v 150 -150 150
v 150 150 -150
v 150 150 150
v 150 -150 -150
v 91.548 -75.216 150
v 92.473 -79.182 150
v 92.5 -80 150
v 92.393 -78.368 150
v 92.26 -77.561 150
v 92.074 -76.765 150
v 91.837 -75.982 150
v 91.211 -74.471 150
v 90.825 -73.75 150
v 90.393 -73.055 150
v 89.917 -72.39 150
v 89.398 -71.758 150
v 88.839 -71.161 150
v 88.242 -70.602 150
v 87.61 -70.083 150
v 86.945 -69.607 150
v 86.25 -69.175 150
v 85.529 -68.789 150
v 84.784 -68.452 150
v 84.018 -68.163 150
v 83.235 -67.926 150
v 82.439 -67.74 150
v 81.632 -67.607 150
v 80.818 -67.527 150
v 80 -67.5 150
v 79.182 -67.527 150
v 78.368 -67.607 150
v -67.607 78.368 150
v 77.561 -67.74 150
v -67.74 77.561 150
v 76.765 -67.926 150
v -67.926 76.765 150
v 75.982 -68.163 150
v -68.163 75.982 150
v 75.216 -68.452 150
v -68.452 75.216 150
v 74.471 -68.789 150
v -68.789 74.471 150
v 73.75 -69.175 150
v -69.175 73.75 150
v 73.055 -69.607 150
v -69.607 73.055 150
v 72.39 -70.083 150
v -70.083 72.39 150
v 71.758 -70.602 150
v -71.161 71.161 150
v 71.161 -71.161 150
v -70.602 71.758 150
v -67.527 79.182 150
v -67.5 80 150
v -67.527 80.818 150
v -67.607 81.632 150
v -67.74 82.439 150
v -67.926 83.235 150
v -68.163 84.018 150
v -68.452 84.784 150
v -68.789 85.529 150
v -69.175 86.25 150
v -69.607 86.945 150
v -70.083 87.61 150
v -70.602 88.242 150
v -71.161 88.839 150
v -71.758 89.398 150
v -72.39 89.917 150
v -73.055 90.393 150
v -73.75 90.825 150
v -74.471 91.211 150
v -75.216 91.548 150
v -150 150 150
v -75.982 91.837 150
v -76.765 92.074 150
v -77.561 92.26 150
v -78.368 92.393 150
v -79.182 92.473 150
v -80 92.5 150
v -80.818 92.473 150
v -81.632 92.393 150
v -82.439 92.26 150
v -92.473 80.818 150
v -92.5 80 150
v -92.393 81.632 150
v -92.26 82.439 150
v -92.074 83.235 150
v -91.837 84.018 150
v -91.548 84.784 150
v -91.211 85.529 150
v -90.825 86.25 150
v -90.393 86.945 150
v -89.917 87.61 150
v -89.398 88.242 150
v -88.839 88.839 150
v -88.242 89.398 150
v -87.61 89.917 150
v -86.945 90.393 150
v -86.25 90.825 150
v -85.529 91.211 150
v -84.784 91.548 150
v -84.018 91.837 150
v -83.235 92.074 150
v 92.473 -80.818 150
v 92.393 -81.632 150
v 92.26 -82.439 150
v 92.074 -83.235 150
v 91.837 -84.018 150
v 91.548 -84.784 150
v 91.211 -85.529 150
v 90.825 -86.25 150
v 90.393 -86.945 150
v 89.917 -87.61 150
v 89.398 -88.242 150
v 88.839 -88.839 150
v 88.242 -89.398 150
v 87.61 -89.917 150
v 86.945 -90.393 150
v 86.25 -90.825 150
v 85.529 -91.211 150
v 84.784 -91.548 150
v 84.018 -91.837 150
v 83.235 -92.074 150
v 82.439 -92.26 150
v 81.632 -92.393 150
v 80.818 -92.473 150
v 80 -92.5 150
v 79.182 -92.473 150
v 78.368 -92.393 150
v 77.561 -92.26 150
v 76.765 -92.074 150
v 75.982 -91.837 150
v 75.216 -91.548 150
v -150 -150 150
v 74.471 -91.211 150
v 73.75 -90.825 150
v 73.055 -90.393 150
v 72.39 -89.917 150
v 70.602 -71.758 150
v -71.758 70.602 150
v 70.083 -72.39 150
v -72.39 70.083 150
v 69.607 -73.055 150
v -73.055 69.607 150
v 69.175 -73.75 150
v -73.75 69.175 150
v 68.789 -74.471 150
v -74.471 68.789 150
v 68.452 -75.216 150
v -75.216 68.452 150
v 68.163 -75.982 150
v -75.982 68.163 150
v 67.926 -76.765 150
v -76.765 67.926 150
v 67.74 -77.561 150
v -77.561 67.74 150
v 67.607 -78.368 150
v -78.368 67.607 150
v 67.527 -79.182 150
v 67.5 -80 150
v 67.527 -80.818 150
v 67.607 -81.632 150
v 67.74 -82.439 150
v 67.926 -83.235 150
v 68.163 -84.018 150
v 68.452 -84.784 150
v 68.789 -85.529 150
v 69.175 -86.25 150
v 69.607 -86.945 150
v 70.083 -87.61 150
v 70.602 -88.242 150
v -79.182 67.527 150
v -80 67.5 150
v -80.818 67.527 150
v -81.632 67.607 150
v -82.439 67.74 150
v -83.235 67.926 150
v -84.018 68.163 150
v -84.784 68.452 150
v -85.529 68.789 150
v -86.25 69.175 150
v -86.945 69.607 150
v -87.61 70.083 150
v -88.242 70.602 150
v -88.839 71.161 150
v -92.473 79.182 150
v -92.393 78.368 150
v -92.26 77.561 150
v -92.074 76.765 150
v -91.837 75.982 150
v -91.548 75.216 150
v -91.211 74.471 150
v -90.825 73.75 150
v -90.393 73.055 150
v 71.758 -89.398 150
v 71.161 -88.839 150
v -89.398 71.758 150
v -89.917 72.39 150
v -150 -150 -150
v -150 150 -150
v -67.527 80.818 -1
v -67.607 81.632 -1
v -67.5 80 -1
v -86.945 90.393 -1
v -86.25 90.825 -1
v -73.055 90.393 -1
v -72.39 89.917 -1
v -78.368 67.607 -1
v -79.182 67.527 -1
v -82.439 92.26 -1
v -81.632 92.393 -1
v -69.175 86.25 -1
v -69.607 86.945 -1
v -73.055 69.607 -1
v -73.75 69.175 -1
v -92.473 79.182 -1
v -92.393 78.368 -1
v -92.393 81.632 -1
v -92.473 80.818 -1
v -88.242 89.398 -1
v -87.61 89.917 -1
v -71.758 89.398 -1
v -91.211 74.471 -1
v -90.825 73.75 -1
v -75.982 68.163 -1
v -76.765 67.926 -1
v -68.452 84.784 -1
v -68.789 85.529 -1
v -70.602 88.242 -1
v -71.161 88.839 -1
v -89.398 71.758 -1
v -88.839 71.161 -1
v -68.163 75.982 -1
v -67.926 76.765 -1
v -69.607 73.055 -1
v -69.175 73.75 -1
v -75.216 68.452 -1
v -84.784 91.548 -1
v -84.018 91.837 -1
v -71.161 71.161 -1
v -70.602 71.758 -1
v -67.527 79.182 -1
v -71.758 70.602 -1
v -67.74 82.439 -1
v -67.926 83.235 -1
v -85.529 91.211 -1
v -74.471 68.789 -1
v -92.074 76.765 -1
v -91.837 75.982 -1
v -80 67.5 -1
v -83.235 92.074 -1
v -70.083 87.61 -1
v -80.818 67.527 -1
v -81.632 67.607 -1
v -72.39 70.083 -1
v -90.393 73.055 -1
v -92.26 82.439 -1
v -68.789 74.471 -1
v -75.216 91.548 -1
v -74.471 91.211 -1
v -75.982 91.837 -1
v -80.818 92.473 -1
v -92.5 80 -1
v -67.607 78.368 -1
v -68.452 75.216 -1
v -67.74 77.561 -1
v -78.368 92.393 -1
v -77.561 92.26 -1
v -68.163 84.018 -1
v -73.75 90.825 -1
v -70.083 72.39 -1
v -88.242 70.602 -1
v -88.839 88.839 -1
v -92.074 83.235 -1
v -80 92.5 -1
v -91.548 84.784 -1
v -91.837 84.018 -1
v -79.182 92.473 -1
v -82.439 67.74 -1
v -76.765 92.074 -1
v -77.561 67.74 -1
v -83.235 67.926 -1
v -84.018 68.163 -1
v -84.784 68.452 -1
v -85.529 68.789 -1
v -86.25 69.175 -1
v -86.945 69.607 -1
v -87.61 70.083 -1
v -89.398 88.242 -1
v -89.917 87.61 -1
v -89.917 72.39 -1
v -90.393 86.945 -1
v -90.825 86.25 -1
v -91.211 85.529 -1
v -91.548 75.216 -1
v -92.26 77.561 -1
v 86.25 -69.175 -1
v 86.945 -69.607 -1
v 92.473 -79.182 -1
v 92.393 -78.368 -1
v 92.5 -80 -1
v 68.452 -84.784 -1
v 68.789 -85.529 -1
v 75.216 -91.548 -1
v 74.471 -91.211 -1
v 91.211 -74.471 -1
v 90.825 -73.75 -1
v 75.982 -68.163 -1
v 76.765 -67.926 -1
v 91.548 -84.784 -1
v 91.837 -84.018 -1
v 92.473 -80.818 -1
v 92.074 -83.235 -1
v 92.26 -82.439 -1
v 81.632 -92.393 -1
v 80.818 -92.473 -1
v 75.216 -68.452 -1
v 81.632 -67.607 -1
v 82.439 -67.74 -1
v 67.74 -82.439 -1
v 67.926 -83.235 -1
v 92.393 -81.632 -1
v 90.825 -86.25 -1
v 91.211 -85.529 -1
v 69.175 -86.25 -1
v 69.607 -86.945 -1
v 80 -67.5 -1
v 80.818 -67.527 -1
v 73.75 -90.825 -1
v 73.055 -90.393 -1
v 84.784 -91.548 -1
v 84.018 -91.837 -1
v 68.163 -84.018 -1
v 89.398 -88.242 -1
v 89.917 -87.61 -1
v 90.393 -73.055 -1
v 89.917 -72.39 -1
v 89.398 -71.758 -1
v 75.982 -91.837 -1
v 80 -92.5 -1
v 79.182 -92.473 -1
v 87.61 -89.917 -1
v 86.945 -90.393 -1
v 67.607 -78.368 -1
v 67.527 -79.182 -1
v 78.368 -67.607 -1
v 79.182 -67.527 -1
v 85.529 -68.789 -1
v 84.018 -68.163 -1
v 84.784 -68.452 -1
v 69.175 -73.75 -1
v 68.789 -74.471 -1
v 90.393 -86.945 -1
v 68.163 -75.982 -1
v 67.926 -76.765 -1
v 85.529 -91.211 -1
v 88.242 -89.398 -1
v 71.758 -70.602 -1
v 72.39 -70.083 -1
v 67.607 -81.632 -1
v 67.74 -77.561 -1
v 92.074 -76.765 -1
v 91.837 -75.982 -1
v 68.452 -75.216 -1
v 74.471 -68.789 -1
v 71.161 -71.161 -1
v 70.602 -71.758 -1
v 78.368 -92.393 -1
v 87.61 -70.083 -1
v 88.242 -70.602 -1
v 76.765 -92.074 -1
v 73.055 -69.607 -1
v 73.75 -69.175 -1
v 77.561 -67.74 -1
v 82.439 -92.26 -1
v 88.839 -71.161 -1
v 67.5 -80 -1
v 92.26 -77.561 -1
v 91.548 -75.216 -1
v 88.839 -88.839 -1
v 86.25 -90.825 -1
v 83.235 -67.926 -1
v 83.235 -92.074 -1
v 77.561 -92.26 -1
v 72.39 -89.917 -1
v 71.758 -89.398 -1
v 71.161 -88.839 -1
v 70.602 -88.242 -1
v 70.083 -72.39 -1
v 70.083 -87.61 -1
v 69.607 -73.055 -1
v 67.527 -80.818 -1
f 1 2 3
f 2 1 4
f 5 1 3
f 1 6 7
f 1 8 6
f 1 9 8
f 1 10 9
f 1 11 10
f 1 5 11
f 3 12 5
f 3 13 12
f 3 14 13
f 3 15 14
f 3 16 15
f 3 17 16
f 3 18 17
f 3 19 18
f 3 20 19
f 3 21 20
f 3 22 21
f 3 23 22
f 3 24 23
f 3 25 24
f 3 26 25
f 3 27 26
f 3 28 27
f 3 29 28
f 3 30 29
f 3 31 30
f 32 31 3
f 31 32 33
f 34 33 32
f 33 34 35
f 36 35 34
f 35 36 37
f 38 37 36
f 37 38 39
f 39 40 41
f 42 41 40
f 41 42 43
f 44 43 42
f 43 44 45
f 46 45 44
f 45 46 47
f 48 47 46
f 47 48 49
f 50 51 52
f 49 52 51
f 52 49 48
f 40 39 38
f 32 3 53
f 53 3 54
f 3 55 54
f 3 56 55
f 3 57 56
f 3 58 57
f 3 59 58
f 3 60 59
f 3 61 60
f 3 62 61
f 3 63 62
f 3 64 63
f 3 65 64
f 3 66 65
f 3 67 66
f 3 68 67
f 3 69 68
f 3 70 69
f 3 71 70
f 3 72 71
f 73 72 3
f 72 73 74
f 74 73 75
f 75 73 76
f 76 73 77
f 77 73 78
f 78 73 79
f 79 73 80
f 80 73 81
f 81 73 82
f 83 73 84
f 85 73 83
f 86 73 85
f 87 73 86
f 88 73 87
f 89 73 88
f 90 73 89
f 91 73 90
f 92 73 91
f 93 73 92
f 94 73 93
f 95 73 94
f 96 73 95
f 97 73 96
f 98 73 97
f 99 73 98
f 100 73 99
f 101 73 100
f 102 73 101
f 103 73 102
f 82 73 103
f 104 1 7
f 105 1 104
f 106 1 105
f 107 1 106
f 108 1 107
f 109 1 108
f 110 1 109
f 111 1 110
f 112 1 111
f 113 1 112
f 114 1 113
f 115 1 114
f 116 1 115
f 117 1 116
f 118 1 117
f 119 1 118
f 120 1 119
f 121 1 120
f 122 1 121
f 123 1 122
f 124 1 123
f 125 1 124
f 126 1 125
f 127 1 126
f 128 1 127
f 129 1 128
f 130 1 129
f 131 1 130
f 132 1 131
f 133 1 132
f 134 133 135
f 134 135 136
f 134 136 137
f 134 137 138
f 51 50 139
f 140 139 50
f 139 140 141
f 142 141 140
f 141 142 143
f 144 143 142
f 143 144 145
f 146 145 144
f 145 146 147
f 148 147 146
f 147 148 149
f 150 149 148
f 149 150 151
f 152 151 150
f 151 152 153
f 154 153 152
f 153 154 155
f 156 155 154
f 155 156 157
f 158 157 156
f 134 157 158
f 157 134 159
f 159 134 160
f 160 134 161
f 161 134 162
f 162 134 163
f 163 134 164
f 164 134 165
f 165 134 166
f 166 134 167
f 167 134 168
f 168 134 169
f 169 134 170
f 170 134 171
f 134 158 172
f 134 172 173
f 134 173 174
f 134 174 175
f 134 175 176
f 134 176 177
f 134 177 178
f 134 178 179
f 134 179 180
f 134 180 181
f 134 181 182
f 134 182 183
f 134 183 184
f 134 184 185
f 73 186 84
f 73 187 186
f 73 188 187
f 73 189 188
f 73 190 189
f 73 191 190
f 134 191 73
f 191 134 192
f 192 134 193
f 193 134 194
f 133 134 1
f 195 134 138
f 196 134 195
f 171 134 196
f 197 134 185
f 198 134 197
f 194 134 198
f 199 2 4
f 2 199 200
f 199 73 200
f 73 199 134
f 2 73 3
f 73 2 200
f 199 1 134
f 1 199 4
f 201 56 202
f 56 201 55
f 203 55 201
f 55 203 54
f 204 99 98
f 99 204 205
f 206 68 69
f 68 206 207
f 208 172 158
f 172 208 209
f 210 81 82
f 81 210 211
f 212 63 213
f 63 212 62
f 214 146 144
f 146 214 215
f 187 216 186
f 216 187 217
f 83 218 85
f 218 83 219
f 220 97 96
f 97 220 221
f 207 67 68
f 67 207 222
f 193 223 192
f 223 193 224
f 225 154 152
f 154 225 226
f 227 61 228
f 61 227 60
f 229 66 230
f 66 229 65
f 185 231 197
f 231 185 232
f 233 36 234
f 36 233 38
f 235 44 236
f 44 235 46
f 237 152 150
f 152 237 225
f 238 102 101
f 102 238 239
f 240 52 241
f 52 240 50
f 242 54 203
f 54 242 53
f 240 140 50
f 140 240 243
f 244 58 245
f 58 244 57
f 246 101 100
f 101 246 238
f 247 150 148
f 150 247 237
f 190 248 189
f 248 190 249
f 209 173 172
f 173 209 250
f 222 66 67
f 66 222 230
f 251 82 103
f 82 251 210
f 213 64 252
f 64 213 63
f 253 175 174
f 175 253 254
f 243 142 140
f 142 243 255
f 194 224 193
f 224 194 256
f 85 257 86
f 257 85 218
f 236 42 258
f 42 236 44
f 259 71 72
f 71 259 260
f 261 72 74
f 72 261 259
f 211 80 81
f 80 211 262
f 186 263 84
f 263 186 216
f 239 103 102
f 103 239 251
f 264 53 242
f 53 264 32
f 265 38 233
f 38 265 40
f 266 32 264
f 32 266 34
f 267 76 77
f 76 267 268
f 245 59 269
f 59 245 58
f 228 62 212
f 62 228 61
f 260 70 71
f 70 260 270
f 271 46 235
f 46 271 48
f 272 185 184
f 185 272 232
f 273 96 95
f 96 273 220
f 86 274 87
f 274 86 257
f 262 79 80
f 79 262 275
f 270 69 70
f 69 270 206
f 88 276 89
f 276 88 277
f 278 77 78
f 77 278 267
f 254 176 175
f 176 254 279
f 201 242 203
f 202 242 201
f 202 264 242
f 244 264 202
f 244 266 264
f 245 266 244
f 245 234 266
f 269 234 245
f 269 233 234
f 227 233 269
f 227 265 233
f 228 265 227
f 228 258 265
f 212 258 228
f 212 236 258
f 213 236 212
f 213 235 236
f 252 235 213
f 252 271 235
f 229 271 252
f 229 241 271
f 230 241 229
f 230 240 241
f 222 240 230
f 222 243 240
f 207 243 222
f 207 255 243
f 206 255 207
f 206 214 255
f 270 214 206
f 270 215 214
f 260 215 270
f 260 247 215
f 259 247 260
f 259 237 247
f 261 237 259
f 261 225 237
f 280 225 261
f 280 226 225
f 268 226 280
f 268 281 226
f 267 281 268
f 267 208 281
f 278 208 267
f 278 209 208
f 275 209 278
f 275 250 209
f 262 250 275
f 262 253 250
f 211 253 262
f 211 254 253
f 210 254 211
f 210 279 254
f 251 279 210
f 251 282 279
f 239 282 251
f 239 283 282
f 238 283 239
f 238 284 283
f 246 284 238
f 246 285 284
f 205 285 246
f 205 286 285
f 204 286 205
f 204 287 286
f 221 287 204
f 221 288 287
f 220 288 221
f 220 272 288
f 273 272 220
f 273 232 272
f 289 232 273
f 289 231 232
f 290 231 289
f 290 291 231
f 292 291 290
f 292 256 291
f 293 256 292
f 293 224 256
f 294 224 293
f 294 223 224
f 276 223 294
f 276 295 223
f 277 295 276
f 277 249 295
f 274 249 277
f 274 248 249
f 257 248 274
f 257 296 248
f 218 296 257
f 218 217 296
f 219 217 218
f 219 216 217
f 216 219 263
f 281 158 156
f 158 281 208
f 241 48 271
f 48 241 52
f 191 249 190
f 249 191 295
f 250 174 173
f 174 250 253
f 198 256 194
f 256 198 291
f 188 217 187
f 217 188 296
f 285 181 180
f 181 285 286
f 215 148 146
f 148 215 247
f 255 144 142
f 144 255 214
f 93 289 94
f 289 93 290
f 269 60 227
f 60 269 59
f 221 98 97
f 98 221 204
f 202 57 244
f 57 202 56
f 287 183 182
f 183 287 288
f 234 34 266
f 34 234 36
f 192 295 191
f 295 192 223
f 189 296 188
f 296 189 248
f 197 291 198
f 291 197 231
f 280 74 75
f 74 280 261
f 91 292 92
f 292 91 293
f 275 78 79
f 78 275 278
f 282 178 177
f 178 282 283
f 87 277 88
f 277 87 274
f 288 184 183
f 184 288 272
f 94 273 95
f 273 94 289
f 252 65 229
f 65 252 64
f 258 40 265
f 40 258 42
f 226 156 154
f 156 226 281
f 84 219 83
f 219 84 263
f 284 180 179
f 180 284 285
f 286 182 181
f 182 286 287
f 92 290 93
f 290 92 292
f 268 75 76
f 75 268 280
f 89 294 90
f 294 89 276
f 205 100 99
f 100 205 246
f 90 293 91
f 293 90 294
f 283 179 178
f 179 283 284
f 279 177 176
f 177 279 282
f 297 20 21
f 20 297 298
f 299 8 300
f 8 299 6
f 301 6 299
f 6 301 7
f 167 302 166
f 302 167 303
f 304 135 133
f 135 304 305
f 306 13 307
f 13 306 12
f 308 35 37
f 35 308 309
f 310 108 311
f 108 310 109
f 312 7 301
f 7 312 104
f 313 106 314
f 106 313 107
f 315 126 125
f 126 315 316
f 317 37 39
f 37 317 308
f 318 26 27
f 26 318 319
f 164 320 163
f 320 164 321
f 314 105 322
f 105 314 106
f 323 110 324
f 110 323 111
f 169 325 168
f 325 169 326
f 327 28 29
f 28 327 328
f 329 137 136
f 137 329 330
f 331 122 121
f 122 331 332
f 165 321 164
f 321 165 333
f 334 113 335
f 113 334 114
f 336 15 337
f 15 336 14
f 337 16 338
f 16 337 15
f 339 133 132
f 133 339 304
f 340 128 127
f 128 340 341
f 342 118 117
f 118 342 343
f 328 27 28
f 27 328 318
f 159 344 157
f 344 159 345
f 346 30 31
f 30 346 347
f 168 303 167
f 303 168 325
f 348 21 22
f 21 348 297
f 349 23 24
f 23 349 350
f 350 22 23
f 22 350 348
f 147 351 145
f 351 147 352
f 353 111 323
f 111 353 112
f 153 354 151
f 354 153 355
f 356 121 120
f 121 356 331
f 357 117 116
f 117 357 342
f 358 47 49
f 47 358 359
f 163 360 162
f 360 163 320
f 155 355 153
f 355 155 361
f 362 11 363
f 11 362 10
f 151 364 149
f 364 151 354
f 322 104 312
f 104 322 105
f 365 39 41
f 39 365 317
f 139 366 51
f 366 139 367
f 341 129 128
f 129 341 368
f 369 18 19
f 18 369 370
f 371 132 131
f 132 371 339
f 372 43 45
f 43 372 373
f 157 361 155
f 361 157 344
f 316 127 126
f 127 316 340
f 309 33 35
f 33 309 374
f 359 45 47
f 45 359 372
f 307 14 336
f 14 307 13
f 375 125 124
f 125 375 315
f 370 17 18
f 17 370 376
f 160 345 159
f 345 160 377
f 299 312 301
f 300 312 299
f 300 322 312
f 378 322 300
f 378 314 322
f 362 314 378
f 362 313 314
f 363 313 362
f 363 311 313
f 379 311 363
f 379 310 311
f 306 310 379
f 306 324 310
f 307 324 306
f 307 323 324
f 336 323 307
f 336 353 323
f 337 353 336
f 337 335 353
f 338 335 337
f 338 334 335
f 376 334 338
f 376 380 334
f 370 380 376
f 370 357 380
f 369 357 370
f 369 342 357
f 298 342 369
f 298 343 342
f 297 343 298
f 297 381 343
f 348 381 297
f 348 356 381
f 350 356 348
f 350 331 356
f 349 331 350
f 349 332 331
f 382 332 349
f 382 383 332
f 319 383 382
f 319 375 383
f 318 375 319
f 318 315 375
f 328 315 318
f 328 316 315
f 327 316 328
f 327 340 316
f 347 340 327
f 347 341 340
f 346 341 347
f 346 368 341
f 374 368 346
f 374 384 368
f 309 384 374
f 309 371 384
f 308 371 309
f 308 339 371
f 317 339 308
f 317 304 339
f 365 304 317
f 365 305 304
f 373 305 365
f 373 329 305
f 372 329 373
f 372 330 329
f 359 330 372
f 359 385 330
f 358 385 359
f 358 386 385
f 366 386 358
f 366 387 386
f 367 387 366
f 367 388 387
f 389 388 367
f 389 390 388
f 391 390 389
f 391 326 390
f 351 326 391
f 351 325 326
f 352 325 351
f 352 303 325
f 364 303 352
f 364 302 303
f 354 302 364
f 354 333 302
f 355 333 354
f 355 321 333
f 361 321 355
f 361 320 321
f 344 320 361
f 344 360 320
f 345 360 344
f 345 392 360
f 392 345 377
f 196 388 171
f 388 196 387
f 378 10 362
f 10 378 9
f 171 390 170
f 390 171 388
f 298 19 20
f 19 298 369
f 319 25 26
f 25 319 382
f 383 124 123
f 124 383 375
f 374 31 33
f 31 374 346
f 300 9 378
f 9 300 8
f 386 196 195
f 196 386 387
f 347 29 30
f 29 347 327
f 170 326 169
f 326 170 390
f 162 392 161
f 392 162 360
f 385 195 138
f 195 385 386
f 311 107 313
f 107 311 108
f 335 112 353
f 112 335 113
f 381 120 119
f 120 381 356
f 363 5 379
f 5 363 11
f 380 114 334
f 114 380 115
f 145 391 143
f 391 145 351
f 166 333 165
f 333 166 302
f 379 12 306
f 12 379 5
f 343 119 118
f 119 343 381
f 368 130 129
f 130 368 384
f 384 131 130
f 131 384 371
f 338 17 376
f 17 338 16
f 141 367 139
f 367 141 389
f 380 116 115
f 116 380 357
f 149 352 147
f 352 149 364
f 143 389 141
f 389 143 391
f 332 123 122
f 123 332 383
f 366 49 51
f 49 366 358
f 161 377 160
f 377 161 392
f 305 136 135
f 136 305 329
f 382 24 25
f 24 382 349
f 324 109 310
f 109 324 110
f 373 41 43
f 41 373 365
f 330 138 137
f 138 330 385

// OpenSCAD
// Workpiece with exactly two diagonal blind holes
// All dimensions are in millimetres

difference() {
    // Solid workpiece: 300 x 300 x 300 mm
    cube([300, 300, 300], center=true);

    // Hole 1: diagonal position
    translate([-80, 80, -1])
        cylinder(h=152, d=25, $fn=96);

    // Hole 2: opposite diagonal position
    translate([80, -80, -1])
        cylinder(h=152, d=25, $fn=96);
}
